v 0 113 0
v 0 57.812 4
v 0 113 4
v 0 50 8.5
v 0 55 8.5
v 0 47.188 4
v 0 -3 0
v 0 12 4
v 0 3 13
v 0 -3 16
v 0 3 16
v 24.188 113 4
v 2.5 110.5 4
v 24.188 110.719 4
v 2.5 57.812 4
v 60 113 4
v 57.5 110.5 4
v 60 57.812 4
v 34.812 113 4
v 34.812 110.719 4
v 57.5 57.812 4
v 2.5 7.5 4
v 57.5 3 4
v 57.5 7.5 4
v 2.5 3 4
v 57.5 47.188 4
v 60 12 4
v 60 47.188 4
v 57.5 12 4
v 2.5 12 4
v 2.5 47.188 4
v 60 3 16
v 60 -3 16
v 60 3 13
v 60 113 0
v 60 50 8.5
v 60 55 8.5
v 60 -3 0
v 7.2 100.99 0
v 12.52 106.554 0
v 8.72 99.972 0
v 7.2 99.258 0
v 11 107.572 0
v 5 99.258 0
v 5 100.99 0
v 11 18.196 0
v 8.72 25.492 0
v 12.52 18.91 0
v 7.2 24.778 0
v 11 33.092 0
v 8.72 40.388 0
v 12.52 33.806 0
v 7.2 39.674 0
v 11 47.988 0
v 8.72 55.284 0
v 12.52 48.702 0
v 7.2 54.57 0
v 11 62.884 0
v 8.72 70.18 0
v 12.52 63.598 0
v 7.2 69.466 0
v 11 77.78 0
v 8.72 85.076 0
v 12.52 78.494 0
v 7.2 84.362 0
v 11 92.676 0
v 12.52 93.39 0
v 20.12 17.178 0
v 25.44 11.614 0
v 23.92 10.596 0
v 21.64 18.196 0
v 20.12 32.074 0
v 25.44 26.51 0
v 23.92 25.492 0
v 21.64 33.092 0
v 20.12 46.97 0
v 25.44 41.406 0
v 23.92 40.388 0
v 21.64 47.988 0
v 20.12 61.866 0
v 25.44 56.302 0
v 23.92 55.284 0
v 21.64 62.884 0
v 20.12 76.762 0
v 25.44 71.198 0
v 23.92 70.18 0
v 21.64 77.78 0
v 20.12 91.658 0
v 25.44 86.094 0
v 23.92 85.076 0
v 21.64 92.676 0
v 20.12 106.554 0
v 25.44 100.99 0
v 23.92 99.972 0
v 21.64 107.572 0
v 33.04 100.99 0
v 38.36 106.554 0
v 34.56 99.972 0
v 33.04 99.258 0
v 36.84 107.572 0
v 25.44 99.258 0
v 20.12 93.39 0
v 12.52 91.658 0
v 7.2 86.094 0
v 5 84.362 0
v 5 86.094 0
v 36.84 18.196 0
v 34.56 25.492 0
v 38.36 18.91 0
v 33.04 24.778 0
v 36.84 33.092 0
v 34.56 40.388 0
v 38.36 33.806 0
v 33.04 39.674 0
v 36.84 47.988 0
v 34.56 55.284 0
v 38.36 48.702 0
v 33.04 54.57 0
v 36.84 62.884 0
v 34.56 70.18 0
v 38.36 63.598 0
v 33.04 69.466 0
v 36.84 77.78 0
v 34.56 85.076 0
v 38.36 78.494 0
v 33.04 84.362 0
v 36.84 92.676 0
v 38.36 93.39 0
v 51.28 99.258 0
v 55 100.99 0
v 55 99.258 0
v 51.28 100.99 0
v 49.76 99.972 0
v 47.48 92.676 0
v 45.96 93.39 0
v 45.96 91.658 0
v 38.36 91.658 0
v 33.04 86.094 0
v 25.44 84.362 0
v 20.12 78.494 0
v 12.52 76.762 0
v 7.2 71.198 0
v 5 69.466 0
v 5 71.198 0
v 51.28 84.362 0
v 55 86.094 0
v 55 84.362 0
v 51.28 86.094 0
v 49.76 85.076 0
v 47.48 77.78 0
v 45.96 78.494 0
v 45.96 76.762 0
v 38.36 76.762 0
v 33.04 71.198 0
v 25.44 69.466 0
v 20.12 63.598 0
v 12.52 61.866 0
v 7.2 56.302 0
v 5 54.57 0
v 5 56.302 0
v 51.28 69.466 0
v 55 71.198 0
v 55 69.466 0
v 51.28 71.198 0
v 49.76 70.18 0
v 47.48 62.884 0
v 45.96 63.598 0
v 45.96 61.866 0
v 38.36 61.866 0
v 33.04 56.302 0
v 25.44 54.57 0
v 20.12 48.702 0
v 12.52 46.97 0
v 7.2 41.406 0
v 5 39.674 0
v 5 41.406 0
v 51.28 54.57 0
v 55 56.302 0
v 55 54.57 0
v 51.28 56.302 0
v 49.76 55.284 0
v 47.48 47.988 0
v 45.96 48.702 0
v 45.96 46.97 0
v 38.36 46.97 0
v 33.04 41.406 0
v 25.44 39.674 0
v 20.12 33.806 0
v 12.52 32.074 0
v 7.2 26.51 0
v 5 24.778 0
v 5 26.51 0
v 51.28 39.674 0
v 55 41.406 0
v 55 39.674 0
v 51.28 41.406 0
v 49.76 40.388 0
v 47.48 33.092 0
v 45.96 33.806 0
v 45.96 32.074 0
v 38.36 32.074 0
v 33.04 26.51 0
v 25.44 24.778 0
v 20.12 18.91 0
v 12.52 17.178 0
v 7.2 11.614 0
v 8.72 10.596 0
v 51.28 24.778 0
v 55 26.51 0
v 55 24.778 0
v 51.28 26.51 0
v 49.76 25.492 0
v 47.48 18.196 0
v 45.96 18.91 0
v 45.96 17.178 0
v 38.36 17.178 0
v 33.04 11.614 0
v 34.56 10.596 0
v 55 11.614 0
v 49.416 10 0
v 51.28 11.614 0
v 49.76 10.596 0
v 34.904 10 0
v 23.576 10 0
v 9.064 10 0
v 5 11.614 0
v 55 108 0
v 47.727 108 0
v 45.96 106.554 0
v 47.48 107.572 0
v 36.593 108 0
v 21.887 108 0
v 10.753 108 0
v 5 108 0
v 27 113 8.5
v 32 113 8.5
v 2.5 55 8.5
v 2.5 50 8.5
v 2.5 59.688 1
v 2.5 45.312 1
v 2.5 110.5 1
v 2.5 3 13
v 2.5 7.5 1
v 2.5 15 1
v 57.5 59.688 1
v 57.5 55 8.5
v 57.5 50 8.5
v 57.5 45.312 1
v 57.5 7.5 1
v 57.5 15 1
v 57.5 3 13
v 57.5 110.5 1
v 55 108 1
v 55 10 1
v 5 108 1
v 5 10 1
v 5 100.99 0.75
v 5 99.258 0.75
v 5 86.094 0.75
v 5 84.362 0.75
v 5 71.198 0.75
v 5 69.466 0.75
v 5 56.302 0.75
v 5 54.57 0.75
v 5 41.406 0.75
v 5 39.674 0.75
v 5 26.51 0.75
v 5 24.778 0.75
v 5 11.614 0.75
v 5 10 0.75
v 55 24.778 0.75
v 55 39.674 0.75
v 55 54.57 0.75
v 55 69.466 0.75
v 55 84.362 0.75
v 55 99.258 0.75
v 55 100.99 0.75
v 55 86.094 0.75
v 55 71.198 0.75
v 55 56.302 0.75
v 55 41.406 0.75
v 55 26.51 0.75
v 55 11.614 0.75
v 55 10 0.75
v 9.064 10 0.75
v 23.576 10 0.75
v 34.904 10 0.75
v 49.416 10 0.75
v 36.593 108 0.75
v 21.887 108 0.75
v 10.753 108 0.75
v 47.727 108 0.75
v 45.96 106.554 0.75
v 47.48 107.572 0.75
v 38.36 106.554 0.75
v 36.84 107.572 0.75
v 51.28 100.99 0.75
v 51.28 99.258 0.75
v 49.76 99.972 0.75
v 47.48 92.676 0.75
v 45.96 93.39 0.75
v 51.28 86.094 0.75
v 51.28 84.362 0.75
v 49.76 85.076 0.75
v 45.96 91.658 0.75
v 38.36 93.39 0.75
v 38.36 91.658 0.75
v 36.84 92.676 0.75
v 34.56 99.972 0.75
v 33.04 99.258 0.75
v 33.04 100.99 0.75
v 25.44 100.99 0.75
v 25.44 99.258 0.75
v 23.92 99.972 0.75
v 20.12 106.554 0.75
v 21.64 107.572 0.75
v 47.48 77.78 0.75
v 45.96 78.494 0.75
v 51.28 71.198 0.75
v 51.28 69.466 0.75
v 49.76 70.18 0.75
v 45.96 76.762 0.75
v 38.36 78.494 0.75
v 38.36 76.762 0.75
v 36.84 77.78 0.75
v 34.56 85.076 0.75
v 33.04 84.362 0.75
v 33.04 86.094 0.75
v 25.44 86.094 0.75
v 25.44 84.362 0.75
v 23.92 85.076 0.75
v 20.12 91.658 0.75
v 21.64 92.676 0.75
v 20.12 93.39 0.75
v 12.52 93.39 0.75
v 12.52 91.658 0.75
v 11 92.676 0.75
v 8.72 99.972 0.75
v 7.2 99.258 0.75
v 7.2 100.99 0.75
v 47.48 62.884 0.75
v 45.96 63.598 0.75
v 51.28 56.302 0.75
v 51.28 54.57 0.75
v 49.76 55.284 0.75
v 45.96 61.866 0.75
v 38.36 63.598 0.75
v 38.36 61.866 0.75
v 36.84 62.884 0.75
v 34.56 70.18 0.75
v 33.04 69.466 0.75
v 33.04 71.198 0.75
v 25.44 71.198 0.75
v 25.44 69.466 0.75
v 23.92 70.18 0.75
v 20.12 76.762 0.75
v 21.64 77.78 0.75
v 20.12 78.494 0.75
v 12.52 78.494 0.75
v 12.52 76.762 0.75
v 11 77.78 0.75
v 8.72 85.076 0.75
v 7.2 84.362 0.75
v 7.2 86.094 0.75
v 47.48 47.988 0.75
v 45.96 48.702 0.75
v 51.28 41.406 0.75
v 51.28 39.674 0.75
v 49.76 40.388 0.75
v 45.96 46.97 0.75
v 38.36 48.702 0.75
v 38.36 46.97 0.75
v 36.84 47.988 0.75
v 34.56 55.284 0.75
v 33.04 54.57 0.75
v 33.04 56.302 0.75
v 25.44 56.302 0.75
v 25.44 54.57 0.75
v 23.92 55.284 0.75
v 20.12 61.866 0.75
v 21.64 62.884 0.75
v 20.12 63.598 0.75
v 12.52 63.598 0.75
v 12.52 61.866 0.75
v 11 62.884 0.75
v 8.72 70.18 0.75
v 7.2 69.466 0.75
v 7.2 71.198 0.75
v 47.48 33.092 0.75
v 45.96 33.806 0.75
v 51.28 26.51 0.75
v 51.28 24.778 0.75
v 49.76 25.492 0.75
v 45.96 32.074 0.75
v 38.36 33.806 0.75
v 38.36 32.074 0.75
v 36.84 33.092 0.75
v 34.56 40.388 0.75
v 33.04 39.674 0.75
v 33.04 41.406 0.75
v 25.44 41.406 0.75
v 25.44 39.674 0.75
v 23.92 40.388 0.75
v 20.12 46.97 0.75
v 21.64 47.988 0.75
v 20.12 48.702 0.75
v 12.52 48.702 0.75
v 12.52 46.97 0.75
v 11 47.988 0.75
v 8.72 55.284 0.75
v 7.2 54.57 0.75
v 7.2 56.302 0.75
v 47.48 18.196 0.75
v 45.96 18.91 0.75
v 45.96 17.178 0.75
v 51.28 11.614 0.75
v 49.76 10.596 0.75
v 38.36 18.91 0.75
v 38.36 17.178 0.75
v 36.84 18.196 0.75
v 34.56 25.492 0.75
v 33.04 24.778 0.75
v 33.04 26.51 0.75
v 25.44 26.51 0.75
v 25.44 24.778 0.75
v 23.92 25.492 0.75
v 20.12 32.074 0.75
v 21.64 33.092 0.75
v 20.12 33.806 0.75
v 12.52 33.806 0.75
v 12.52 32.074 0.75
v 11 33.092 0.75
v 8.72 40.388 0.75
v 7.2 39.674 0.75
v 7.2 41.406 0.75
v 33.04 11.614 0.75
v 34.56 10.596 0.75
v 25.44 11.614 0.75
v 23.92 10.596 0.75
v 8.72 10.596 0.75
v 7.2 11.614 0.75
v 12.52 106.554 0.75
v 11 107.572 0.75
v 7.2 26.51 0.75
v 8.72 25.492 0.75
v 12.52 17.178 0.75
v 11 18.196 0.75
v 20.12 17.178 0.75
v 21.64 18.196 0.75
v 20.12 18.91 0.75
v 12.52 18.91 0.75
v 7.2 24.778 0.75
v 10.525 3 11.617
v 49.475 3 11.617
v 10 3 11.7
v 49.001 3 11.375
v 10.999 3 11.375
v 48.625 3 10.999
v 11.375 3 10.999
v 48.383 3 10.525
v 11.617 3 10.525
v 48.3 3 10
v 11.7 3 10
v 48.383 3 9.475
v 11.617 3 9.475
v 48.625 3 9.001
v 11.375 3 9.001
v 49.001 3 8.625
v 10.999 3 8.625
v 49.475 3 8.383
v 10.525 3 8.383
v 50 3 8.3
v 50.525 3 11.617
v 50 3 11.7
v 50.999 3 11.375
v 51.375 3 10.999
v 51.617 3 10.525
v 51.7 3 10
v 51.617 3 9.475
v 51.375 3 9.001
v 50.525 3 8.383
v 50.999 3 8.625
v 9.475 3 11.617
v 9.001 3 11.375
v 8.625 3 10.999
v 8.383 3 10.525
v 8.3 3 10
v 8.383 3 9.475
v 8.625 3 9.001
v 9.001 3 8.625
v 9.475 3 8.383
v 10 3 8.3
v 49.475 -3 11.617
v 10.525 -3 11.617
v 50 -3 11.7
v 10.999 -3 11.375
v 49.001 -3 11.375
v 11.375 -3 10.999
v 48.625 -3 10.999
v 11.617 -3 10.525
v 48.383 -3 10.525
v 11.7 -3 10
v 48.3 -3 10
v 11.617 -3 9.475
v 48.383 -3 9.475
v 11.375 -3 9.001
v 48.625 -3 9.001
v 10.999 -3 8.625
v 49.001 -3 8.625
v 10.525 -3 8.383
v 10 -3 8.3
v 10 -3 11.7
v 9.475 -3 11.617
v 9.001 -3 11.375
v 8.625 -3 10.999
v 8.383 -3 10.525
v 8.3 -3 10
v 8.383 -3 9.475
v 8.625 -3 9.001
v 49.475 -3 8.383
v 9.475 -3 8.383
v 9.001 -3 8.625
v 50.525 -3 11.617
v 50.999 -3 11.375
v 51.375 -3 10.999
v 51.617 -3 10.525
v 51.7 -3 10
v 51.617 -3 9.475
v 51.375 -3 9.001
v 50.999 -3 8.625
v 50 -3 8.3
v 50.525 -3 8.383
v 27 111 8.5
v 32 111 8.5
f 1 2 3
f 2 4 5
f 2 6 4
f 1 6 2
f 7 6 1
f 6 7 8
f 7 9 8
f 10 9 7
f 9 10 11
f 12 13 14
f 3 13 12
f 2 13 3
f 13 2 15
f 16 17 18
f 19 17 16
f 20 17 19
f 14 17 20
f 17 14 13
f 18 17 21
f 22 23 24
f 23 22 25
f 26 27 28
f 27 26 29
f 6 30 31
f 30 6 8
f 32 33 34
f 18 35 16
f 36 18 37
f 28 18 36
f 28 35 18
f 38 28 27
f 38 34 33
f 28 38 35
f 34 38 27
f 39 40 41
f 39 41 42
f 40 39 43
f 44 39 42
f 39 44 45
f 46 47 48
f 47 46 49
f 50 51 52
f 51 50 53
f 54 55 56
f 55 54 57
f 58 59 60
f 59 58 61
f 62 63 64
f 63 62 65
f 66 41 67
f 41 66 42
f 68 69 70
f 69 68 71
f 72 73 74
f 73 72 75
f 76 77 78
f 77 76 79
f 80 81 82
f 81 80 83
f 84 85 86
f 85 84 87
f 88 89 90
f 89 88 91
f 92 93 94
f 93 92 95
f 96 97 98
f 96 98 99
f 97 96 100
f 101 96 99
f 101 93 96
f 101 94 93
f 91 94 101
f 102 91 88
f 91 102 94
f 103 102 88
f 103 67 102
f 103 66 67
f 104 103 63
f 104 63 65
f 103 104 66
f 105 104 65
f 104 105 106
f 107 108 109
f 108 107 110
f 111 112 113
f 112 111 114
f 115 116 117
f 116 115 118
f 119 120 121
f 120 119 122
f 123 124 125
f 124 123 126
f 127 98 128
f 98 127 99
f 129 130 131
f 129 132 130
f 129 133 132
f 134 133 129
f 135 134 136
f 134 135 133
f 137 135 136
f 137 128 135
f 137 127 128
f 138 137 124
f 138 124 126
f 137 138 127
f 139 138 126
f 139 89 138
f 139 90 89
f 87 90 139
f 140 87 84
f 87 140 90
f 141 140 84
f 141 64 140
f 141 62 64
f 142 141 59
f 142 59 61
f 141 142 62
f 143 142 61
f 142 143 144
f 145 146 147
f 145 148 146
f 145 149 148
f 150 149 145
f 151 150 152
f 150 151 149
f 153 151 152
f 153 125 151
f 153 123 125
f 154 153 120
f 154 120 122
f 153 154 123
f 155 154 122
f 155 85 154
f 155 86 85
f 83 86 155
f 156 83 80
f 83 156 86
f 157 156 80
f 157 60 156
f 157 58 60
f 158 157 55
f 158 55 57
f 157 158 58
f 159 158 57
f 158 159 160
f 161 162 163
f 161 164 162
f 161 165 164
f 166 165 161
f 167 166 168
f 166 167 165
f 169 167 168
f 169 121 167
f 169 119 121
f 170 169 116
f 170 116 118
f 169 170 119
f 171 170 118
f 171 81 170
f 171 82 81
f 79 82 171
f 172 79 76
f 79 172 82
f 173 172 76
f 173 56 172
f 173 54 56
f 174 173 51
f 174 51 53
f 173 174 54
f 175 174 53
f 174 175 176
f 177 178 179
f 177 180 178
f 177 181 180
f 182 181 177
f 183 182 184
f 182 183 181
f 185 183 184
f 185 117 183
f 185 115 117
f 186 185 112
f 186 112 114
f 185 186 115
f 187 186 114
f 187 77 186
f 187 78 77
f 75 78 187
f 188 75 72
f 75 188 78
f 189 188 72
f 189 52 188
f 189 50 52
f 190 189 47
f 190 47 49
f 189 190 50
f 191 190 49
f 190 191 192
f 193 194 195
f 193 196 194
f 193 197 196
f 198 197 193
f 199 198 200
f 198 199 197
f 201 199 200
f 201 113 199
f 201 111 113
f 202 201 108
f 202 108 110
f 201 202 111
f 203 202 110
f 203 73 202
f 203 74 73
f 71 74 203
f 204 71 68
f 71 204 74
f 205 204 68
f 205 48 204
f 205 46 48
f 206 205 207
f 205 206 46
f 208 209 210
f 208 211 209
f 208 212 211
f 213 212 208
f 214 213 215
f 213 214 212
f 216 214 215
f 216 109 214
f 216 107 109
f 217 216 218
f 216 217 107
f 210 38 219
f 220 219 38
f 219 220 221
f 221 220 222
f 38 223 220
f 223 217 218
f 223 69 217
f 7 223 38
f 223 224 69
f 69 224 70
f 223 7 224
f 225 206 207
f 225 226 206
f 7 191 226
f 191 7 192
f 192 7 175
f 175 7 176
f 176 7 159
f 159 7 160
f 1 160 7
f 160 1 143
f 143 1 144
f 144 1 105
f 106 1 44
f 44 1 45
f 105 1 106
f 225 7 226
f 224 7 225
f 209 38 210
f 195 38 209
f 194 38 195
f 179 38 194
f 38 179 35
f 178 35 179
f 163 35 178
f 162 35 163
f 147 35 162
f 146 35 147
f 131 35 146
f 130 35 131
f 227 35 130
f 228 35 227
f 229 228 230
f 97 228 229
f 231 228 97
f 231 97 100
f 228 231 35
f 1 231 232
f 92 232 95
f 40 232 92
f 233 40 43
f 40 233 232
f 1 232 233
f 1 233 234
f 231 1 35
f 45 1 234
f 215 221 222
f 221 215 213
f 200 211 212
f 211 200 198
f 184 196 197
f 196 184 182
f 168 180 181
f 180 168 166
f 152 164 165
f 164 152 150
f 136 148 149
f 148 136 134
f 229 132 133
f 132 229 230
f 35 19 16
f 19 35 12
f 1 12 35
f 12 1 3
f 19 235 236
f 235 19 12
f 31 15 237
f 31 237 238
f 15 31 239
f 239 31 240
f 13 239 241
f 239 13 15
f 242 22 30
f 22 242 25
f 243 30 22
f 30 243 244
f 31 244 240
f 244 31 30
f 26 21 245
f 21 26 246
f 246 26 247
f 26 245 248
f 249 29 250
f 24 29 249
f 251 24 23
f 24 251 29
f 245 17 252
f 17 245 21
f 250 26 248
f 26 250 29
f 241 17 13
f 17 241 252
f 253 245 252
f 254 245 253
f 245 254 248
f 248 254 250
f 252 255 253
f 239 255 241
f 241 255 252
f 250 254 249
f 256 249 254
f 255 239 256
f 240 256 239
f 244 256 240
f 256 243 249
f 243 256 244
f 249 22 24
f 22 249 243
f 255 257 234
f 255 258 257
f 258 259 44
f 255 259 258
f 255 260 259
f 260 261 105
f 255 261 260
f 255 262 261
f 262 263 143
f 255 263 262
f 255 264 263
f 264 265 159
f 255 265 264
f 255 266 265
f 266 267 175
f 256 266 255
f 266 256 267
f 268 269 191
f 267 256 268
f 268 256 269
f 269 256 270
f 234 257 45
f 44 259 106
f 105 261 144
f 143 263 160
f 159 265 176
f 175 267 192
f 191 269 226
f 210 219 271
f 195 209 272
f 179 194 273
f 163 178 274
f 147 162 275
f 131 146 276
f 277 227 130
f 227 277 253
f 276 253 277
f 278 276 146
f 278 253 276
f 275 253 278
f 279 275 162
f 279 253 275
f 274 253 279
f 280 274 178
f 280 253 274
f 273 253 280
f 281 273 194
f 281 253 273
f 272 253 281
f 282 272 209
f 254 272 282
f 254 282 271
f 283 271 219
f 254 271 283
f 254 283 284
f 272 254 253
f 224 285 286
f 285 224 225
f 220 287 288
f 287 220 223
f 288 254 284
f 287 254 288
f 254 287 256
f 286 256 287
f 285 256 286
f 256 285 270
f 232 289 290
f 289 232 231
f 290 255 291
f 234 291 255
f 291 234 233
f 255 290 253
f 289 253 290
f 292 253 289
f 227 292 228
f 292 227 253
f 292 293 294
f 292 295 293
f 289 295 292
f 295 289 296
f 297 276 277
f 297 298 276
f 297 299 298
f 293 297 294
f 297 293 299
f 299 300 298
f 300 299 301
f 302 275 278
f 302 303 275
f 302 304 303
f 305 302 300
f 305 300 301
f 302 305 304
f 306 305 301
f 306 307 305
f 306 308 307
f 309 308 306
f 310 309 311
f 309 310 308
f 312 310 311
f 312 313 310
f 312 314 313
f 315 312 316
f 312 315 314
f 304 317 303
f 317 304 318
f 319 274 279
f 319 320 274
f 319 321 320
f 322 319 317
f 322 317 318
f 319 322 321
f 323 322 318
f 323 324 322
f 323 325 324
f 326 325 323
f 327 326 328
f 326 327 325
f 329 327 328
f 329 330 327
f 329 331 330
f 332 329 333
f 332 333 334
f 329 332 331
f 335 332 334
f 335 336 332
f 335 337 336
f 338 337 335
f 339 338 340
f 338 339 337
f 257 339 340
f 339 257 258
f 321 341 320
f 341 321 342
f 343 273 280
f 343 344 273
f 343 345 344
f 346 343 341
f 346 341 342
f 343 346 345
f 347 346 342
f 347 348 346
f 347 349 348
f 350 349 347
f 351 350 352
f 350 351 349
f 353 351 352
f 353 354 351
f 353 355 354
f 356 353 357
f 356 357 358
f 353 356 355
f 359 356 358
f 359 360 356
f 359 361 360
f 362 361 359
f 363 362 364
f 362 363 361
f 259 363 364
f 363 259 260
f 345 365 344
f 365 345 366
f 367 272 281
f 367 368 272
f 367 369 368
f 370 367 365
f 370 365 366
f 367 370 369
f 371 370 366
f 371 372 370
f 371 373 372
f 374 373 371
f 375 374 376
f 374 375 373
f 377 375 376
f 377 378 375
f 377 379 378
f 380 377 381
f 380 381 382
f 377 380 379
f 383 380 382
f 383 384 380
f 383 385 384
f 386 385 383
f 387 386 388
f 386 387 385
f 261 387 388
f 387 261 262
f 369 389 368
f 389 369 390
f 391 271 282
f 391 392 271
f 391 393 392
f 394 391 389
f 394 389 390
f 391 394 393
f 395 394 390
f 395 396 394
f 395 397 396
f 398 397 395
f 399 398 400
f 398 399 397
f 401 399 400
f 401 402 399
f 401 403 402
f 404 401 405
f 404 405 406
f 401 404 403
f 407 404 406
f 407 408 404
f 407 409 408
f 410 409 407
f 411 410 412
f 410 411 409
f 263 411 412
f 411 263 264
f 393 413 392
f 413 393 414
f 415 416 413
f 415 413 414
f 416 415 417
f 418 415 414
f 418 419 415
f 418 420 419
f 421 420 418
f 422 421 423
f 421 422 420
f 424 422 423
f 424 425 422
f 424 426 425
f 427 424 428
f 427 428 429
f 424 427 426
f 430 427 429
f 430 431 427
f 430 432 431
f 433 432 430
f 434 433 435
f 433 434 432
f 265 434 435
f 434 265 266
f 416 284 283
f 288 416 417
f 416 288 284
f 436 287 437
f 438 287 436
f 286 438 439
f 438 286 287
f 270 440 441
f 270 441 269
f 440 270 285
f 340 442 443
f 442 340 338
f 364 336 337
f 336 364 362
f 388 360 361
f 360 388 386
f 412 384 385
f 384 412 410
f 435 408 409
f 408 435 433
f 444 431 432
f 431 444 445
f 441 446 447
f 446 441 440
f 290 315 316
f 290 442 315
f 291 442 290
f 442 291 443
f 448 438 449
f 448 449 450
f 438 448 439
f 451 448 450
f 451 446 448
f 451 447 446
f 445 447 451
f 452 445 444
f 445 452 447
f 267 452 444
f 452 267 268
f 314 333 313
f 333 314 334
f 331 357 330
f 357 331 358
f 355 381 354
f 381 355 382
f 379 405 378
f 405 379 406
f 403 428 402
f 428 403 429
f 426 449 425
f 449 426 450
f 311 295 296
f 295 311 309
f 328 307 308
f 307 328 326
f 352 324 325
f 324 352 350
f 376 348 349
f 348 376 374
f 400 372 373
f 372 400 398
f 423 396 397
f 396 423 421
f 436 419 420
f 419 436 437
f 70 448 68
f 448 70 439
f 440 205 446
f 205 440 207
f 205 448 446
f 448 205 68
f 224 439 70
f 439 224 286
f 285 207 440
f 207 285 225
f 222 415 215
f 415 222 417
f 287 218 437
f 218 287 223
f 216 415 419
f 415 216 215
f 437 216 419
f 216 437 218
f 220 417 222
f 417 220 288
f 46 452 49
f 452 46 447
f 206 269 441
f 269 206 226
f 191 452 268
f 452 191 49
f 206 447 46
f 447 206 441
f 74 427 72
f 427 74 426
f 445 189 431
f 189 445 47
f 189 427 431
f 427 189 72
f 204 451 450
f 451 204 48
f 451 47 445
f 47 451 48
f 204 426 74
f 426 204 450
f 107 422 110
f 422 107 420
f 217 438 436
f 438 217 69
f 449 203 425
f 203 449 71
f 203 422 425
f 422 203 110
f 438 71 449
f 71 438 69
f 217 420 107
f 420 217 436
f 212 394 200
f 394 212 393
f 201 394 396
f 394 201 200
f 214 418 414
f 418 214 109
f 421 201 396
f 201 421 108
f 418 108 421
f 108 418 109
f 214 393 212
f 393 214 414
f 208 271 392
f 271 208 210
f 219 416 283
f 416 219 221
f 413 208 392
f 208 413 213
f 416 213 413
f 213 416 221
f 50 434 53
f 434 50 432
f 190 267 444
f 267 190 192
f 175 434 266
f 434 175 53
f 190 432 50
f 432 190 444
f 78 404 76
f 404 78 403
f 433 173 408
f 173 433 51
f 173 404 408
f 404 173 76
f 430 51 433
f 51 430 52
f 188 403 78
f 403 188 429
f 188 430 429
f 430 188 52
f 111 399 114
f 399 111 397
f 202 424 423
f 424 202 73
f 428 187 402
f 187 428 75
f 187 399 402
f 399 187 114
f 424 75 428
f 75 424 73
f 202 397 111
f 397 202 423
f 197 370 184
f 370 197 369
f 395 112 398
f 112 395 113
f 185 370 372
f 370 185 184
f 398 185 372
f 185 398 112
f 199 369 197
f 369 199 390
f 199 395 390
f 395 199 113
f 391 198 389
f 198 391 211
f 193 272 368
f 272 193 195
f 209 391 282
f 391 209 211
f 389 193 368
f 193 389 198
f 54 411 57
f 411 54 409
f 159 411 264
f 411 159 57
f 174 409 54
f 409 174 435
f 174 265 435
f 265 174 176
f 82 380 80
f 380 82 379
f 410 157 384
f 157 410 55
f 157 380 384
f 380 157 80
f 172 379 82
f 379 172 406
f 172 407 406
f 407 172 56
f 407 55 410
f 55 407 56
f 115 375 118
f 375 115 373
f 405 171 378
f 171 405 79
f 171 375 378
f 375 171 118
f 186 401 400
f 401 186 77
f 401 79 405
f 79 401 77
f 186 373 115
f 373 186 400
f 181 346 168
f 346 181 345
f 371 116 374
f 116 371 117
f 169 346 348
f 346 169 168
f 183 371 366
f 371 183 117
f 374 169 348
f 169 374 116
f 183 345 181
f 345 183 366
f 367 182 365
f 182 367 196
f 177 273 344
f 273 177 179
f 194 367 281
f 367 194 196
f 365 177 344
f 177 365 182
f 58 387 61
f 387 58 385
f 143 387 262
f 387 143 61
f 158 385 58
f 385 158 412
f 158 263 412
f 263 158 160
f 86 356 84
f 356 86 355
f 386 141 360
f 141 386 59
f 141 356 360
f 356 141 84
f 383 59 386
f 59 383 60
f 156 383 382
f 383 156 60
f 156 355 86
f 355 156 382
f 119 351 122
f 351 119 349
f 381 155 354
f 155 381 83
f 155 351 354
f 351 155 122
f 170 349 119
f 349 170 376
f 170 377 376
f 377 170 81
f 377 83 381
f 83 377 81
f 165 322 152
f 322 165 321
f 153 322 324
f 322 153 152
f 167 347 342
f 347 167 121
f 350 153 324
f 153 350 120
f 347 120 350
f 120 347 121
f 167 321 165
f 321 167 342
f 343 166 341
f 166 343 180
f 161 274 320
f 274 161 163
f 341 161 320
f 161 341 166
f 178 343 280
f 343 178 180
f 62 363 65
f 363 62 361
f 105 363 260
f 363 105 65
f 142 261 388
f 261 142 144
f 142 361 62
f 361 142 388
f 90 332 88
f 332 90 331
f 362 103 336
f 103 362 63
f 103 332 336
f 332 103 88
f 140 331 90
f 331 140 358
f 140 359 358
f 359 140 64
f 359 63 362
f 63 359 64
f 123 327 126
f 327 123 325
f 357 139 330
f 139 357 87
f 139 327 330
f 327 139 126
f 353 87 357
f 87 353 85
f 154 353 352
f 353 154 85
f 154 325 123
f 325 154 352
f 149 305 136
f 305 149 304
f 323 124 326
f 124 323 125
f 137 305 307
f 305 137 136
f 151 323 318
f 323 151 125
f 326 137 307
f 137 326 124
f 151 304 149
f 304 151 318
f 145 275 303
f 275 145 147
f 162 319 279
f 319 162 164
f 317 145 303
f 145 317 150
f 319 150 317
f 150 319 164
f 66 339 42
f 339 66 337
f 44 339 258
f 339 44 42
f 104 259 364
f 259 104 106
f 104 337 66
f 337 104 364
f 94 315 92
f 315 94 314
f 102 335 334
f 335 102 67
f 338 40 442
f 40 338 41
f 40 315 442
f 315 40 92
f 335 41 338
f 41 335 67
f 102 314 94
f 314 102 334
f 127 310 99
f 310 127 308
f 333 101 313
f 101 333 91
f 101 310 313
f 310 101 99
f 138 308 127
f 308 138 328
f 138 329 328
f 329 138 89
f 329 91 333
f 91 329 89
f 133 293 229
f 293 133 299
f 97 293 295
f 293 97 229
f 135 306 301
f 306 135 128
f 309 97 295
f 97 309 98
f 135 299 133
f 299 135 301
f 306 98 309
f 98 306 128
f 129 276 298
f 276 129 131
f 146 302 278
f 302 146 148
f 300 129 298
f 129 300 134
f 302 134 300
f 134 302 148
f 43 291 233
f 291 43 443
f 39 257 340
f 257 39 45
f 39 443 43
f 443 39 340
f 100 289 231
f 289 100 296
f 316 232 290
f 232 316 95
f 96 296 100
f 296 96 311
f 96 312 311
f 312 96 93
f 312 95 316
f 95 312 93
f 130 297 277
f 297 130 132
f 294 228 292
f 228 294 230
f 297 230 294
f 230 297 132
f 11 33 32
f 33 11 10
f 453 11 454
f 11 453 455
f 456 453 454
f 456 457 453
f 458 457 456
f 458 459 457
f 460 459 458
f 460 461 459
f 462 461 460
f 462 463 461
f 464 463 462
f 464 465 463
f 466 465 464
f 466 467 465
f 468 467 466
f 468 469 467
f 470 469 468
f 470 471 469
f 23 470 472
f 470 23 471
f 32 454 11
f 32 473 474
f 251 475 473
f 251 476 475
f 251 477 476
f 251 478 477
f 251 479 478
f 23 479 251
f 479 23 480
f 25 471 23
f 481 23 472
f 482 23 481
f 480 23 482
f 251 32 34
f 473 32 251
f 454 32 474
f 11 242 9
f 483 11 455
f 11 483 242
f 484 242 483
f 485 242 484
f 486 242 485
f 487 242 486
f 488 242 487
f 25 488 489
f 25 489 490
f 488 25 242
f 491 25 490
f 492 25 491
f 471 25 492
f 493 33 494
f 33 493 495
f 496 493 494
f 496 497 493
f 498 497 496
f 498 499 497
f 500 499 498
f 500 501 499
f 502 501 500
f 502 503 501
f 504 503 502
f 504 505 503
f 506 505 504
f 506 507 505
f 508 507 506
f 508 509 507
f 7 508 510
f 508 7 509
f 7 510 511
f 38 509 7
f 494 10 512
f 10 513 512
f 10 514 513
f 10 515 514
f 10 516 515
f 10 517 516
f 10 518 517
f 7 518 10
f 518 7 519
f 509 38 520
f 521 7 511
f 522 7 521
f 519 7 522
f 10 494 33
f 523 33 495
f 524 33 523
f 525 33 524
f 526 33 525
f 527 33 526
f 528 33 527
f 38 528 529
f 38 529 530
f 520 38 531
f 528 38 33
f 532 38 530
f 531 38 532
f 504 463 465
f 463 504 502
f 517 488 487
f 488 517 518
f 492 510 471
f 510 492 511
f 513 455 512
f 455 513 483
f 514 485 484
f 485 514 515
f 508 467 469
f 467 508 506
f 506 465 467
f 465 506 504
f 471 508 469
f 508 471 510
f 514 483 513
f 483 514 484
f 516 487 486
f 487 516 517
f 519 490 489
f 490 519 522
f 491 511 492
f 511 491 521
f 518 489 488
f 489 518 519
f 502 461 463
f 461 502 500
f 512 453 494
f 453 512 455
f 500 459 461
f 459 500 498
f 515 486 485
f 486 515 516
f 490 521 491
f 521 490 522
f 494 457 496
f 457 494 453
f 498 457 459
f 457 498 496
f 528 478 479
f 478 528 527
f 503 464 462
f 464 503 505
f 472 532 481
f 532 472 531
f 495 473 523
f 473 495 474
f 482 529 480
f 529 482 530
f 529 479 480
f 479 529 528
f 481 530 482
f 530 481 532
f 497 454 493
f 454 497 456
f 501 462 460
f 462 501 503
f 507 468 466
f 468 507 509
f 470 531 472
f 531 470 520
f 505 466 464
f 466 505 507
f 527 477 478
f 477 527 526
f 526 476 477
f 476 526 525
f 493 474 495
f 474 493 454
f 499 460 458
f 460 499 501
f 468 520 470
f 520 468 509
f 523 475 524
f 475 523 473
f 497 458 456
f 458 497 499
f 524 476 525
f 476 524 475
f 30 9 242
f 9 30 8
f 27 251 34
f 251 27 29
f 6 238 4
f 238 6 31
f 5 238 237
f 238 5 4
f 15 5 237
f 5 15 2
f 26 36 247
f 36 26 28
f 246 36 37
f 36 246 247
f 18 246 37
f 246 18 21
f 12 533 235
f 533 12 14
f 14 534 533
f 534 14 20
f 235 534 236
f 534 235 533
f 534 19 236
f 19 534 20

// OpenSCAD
$fn=20;

module beehome (w,l,h,s){
difference (){
		cube([w,l,h]);
#	translate([(w%s)/2,(l%s)/2,0]){
		for ( j = [0 : s*1.96 : l] )	{
			for ( i = [0 : s*3.4 : w] )	{
				translate([i,j,0])cylinder (h,s,s,$fn=6);
				translate([i+s*1.7,j+s*0.96,0])cylinder (h,s,s,$fn=6);
			}
		}		
	}
}
}


module arm (){
	hull() {
		cube ([2.5,1,15]);
		cube ([2.5,15,1]);
	}
}

module arduino() {
 difference () {
		cube ([54,102,2]);
		translate ([2.5,15,0]) cylinder(10,1.5,1.5);
		translate ([2.5,90,0]) cylinder(10,1.5,1.5);
		translate ([18,46,0]) cylinder(10,1.5,1.5);
		translate ([46,46,0]) cylinder(10,1.5,1.5);
		translate ([51,15,0]) cylinder(10,1.5,1.5);
		translate ([51,96,0]) cylinder(10,1.5,1.5);
	}
}




difference () {
	translate([0, -3, 0])cube ([60,6,16]);
#	translate([10,-4,10])rotate([-90,0,0]) cylinder(8,1.7,1.7);
#	translate([50,-4,10])rotate([-90,0,0]) cylinder(8,1.7,1.7);
}


translate ([0,0,0])arm ();
translate ([57.5,0,0])arm ();

difference () {
	cube ([60,113,4]);
#	translate([2.5,7.5,1])cube ([55,103,4]);
	translate([5,10,0])cube ([50,98,4]);
}
//conner
#translate ([0,50,0])hull() {
		translate([0,-5,0])cube ([2.5,15,0.5]);
		translate([0,0,8])cube ([2.5,5,0.5]);
}
#translate ([57.5,50,0])hull() {
		translate([0,-5,0])cube ([2.5,15,0.5]);
		translate([0,0,8])cube ([2.5,5,0.5]);
}
translate ([27,113,0])rotate([0,0,-90])hull() {
		translate([0,-5,0])cube ([2.5,15,0.5]);
		translate([0,0,8])cube ([2,5,0.5]);
}


//bottom beehome
beehome (60,113,0.75,7.6);



// color ("green")translate([3,8,4])  arduino();
